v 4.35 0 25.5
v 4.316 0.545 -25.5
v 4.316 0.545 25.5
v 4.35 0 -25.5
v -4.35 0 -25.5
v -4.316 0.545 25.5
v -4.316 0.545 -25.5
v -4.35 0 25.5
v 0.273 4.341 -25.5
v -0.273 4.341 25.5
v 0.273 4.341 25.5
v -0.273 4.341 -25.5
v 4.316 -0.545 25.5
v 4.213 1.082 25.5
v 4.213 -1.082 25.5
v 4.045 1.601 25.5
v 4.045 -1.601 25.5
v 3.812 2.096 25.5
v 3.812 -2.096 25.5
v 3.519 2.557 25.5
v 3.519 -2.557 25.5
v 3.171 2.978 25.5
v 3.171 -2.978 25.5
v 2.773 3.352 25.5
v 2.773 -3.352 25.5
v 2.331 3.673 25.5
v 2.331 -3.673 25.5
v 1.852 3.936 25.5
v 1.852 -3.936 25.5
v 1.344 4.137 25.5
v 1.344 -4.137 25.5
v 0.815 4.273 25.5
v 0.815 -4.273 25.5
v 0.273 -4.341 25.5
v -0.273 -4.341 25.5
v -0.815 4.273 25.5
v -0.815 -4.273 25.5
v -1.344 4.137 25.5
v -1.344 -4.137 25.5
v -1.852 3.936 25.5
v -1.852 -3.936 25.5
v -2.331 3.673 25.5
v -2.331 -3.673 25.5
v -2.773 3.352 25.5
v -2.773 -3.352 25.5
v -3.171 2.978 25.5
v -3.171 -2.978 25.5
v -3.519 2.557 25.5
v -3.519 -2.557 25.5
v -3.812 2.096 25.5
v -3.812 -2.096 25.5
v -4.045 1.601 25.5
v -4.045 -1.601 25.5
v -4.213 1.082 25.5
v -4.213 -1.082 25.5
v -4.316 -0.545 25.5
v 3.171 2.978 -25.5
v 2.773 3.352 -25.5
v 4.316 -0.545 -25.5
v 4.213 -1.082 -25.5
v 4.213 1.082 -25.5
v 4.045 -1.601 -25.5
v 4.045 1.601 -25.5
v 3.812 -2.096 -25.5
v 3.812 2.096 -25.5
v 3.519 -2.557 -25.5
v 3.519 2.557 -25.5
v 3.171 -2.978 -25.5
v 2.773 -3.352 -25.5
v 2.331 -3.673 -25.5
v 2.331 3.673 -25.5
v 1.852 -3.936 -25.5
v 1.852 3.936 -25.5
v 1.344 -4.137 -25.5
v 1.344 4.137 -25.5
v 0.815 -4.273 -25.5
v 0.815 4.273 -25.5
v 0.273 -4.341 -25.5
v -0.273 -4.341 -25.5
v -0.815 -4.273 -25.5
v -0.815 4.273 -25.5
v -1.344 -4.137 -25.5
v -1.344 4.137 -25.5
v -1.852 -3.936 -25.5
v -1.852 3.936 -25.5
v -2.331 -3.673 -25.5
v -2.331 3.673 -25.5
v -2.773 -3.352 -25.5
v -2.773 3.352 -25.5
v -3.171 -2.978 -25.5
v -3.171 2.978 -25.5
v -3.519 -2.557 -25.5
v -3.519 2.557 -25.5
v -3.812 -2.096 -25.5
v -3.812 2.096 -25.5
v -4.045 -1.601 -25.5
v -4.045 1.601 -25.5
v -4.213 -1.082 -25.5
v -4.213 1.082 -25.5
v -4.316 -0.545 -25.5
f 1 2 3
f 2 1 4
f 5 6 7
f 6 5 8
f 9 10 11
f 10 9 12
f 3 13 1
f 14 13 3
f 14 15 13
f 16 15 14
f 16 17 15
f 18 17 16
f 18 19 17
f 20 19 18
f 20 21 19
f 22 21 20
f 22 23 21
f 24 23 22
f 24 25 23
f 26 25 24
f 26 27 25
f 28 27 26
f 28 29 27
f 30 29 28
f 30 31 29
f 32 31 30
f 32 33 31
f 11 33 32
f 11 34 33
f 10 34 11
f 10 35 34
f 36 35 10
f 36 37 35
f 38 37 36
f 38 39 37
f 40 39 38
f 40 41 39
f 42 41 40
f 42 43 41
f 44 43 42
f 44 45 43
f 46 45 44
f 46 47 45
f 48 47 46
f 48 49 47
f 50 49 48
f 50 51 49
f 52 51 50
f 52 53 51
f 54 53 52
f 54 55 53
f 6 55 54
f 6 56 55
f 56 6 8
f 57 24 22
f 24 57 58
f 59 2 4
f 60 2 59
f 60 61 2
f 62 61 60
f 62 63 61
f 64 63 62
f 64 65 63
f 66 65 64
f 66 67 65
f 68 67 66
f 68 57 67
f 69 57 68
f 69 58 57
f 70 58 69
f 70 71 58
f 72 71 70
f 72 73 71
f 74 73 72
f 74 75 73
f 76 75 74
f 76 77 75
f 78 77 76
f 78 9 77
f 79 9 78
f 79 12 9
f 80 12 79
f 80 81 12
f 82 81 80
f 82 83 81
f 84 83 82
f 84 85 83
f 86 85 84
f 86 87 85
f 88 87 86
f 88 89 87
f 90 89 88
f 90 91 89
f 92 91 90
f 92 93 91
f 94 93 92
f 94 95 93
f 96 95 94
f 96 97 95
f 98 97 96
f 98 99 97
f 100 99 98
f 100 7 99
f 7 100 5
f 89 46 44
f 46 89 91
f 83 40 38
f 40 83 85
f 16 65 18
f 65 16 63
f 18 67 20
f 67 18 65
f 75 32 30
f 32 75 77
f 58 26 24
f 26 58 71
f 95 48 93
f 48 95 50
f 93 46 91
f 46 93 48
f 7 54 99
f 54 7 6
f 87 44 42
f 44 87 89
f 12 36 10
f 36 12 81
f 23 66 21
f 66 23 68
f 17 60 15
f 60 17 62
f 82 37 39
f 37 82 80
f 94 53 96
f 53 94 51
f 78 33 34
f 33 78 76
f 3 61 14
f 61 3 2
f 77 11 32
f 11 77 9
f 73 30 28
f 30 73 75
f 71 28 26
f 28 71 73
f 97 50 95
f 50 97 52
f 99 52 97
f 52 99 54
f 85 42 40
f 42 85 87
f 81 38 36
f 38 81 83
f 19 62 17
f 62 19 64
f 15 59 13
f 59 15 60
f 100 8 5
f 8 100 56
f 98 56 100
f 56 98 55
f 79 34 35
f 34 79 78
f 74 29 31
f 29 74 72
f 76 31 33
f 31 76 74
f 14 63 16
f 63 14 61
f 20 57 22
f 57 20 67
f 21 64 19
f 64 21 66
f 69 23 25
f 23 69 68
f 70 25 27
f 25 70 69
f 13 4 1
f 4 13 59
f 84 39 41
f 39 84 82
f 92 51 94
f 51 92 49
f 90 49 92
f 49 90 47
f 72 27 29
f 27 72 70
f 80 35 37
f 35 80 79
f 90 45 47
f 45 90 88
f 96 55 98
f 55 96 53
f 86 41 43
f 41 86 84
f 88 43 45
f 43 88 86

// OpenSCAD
$fn = 50;


difference() {
	union() {
		translate(v = [0, 0, -25.5000000000]) {
			cylinder(h = 51, r = 4.3500000000);
		}
	}
	union() {
		translate(v = [0, 0, -100.0000000000]) {
			cylinder(h = 200, r = 0);
		}
	}
}
